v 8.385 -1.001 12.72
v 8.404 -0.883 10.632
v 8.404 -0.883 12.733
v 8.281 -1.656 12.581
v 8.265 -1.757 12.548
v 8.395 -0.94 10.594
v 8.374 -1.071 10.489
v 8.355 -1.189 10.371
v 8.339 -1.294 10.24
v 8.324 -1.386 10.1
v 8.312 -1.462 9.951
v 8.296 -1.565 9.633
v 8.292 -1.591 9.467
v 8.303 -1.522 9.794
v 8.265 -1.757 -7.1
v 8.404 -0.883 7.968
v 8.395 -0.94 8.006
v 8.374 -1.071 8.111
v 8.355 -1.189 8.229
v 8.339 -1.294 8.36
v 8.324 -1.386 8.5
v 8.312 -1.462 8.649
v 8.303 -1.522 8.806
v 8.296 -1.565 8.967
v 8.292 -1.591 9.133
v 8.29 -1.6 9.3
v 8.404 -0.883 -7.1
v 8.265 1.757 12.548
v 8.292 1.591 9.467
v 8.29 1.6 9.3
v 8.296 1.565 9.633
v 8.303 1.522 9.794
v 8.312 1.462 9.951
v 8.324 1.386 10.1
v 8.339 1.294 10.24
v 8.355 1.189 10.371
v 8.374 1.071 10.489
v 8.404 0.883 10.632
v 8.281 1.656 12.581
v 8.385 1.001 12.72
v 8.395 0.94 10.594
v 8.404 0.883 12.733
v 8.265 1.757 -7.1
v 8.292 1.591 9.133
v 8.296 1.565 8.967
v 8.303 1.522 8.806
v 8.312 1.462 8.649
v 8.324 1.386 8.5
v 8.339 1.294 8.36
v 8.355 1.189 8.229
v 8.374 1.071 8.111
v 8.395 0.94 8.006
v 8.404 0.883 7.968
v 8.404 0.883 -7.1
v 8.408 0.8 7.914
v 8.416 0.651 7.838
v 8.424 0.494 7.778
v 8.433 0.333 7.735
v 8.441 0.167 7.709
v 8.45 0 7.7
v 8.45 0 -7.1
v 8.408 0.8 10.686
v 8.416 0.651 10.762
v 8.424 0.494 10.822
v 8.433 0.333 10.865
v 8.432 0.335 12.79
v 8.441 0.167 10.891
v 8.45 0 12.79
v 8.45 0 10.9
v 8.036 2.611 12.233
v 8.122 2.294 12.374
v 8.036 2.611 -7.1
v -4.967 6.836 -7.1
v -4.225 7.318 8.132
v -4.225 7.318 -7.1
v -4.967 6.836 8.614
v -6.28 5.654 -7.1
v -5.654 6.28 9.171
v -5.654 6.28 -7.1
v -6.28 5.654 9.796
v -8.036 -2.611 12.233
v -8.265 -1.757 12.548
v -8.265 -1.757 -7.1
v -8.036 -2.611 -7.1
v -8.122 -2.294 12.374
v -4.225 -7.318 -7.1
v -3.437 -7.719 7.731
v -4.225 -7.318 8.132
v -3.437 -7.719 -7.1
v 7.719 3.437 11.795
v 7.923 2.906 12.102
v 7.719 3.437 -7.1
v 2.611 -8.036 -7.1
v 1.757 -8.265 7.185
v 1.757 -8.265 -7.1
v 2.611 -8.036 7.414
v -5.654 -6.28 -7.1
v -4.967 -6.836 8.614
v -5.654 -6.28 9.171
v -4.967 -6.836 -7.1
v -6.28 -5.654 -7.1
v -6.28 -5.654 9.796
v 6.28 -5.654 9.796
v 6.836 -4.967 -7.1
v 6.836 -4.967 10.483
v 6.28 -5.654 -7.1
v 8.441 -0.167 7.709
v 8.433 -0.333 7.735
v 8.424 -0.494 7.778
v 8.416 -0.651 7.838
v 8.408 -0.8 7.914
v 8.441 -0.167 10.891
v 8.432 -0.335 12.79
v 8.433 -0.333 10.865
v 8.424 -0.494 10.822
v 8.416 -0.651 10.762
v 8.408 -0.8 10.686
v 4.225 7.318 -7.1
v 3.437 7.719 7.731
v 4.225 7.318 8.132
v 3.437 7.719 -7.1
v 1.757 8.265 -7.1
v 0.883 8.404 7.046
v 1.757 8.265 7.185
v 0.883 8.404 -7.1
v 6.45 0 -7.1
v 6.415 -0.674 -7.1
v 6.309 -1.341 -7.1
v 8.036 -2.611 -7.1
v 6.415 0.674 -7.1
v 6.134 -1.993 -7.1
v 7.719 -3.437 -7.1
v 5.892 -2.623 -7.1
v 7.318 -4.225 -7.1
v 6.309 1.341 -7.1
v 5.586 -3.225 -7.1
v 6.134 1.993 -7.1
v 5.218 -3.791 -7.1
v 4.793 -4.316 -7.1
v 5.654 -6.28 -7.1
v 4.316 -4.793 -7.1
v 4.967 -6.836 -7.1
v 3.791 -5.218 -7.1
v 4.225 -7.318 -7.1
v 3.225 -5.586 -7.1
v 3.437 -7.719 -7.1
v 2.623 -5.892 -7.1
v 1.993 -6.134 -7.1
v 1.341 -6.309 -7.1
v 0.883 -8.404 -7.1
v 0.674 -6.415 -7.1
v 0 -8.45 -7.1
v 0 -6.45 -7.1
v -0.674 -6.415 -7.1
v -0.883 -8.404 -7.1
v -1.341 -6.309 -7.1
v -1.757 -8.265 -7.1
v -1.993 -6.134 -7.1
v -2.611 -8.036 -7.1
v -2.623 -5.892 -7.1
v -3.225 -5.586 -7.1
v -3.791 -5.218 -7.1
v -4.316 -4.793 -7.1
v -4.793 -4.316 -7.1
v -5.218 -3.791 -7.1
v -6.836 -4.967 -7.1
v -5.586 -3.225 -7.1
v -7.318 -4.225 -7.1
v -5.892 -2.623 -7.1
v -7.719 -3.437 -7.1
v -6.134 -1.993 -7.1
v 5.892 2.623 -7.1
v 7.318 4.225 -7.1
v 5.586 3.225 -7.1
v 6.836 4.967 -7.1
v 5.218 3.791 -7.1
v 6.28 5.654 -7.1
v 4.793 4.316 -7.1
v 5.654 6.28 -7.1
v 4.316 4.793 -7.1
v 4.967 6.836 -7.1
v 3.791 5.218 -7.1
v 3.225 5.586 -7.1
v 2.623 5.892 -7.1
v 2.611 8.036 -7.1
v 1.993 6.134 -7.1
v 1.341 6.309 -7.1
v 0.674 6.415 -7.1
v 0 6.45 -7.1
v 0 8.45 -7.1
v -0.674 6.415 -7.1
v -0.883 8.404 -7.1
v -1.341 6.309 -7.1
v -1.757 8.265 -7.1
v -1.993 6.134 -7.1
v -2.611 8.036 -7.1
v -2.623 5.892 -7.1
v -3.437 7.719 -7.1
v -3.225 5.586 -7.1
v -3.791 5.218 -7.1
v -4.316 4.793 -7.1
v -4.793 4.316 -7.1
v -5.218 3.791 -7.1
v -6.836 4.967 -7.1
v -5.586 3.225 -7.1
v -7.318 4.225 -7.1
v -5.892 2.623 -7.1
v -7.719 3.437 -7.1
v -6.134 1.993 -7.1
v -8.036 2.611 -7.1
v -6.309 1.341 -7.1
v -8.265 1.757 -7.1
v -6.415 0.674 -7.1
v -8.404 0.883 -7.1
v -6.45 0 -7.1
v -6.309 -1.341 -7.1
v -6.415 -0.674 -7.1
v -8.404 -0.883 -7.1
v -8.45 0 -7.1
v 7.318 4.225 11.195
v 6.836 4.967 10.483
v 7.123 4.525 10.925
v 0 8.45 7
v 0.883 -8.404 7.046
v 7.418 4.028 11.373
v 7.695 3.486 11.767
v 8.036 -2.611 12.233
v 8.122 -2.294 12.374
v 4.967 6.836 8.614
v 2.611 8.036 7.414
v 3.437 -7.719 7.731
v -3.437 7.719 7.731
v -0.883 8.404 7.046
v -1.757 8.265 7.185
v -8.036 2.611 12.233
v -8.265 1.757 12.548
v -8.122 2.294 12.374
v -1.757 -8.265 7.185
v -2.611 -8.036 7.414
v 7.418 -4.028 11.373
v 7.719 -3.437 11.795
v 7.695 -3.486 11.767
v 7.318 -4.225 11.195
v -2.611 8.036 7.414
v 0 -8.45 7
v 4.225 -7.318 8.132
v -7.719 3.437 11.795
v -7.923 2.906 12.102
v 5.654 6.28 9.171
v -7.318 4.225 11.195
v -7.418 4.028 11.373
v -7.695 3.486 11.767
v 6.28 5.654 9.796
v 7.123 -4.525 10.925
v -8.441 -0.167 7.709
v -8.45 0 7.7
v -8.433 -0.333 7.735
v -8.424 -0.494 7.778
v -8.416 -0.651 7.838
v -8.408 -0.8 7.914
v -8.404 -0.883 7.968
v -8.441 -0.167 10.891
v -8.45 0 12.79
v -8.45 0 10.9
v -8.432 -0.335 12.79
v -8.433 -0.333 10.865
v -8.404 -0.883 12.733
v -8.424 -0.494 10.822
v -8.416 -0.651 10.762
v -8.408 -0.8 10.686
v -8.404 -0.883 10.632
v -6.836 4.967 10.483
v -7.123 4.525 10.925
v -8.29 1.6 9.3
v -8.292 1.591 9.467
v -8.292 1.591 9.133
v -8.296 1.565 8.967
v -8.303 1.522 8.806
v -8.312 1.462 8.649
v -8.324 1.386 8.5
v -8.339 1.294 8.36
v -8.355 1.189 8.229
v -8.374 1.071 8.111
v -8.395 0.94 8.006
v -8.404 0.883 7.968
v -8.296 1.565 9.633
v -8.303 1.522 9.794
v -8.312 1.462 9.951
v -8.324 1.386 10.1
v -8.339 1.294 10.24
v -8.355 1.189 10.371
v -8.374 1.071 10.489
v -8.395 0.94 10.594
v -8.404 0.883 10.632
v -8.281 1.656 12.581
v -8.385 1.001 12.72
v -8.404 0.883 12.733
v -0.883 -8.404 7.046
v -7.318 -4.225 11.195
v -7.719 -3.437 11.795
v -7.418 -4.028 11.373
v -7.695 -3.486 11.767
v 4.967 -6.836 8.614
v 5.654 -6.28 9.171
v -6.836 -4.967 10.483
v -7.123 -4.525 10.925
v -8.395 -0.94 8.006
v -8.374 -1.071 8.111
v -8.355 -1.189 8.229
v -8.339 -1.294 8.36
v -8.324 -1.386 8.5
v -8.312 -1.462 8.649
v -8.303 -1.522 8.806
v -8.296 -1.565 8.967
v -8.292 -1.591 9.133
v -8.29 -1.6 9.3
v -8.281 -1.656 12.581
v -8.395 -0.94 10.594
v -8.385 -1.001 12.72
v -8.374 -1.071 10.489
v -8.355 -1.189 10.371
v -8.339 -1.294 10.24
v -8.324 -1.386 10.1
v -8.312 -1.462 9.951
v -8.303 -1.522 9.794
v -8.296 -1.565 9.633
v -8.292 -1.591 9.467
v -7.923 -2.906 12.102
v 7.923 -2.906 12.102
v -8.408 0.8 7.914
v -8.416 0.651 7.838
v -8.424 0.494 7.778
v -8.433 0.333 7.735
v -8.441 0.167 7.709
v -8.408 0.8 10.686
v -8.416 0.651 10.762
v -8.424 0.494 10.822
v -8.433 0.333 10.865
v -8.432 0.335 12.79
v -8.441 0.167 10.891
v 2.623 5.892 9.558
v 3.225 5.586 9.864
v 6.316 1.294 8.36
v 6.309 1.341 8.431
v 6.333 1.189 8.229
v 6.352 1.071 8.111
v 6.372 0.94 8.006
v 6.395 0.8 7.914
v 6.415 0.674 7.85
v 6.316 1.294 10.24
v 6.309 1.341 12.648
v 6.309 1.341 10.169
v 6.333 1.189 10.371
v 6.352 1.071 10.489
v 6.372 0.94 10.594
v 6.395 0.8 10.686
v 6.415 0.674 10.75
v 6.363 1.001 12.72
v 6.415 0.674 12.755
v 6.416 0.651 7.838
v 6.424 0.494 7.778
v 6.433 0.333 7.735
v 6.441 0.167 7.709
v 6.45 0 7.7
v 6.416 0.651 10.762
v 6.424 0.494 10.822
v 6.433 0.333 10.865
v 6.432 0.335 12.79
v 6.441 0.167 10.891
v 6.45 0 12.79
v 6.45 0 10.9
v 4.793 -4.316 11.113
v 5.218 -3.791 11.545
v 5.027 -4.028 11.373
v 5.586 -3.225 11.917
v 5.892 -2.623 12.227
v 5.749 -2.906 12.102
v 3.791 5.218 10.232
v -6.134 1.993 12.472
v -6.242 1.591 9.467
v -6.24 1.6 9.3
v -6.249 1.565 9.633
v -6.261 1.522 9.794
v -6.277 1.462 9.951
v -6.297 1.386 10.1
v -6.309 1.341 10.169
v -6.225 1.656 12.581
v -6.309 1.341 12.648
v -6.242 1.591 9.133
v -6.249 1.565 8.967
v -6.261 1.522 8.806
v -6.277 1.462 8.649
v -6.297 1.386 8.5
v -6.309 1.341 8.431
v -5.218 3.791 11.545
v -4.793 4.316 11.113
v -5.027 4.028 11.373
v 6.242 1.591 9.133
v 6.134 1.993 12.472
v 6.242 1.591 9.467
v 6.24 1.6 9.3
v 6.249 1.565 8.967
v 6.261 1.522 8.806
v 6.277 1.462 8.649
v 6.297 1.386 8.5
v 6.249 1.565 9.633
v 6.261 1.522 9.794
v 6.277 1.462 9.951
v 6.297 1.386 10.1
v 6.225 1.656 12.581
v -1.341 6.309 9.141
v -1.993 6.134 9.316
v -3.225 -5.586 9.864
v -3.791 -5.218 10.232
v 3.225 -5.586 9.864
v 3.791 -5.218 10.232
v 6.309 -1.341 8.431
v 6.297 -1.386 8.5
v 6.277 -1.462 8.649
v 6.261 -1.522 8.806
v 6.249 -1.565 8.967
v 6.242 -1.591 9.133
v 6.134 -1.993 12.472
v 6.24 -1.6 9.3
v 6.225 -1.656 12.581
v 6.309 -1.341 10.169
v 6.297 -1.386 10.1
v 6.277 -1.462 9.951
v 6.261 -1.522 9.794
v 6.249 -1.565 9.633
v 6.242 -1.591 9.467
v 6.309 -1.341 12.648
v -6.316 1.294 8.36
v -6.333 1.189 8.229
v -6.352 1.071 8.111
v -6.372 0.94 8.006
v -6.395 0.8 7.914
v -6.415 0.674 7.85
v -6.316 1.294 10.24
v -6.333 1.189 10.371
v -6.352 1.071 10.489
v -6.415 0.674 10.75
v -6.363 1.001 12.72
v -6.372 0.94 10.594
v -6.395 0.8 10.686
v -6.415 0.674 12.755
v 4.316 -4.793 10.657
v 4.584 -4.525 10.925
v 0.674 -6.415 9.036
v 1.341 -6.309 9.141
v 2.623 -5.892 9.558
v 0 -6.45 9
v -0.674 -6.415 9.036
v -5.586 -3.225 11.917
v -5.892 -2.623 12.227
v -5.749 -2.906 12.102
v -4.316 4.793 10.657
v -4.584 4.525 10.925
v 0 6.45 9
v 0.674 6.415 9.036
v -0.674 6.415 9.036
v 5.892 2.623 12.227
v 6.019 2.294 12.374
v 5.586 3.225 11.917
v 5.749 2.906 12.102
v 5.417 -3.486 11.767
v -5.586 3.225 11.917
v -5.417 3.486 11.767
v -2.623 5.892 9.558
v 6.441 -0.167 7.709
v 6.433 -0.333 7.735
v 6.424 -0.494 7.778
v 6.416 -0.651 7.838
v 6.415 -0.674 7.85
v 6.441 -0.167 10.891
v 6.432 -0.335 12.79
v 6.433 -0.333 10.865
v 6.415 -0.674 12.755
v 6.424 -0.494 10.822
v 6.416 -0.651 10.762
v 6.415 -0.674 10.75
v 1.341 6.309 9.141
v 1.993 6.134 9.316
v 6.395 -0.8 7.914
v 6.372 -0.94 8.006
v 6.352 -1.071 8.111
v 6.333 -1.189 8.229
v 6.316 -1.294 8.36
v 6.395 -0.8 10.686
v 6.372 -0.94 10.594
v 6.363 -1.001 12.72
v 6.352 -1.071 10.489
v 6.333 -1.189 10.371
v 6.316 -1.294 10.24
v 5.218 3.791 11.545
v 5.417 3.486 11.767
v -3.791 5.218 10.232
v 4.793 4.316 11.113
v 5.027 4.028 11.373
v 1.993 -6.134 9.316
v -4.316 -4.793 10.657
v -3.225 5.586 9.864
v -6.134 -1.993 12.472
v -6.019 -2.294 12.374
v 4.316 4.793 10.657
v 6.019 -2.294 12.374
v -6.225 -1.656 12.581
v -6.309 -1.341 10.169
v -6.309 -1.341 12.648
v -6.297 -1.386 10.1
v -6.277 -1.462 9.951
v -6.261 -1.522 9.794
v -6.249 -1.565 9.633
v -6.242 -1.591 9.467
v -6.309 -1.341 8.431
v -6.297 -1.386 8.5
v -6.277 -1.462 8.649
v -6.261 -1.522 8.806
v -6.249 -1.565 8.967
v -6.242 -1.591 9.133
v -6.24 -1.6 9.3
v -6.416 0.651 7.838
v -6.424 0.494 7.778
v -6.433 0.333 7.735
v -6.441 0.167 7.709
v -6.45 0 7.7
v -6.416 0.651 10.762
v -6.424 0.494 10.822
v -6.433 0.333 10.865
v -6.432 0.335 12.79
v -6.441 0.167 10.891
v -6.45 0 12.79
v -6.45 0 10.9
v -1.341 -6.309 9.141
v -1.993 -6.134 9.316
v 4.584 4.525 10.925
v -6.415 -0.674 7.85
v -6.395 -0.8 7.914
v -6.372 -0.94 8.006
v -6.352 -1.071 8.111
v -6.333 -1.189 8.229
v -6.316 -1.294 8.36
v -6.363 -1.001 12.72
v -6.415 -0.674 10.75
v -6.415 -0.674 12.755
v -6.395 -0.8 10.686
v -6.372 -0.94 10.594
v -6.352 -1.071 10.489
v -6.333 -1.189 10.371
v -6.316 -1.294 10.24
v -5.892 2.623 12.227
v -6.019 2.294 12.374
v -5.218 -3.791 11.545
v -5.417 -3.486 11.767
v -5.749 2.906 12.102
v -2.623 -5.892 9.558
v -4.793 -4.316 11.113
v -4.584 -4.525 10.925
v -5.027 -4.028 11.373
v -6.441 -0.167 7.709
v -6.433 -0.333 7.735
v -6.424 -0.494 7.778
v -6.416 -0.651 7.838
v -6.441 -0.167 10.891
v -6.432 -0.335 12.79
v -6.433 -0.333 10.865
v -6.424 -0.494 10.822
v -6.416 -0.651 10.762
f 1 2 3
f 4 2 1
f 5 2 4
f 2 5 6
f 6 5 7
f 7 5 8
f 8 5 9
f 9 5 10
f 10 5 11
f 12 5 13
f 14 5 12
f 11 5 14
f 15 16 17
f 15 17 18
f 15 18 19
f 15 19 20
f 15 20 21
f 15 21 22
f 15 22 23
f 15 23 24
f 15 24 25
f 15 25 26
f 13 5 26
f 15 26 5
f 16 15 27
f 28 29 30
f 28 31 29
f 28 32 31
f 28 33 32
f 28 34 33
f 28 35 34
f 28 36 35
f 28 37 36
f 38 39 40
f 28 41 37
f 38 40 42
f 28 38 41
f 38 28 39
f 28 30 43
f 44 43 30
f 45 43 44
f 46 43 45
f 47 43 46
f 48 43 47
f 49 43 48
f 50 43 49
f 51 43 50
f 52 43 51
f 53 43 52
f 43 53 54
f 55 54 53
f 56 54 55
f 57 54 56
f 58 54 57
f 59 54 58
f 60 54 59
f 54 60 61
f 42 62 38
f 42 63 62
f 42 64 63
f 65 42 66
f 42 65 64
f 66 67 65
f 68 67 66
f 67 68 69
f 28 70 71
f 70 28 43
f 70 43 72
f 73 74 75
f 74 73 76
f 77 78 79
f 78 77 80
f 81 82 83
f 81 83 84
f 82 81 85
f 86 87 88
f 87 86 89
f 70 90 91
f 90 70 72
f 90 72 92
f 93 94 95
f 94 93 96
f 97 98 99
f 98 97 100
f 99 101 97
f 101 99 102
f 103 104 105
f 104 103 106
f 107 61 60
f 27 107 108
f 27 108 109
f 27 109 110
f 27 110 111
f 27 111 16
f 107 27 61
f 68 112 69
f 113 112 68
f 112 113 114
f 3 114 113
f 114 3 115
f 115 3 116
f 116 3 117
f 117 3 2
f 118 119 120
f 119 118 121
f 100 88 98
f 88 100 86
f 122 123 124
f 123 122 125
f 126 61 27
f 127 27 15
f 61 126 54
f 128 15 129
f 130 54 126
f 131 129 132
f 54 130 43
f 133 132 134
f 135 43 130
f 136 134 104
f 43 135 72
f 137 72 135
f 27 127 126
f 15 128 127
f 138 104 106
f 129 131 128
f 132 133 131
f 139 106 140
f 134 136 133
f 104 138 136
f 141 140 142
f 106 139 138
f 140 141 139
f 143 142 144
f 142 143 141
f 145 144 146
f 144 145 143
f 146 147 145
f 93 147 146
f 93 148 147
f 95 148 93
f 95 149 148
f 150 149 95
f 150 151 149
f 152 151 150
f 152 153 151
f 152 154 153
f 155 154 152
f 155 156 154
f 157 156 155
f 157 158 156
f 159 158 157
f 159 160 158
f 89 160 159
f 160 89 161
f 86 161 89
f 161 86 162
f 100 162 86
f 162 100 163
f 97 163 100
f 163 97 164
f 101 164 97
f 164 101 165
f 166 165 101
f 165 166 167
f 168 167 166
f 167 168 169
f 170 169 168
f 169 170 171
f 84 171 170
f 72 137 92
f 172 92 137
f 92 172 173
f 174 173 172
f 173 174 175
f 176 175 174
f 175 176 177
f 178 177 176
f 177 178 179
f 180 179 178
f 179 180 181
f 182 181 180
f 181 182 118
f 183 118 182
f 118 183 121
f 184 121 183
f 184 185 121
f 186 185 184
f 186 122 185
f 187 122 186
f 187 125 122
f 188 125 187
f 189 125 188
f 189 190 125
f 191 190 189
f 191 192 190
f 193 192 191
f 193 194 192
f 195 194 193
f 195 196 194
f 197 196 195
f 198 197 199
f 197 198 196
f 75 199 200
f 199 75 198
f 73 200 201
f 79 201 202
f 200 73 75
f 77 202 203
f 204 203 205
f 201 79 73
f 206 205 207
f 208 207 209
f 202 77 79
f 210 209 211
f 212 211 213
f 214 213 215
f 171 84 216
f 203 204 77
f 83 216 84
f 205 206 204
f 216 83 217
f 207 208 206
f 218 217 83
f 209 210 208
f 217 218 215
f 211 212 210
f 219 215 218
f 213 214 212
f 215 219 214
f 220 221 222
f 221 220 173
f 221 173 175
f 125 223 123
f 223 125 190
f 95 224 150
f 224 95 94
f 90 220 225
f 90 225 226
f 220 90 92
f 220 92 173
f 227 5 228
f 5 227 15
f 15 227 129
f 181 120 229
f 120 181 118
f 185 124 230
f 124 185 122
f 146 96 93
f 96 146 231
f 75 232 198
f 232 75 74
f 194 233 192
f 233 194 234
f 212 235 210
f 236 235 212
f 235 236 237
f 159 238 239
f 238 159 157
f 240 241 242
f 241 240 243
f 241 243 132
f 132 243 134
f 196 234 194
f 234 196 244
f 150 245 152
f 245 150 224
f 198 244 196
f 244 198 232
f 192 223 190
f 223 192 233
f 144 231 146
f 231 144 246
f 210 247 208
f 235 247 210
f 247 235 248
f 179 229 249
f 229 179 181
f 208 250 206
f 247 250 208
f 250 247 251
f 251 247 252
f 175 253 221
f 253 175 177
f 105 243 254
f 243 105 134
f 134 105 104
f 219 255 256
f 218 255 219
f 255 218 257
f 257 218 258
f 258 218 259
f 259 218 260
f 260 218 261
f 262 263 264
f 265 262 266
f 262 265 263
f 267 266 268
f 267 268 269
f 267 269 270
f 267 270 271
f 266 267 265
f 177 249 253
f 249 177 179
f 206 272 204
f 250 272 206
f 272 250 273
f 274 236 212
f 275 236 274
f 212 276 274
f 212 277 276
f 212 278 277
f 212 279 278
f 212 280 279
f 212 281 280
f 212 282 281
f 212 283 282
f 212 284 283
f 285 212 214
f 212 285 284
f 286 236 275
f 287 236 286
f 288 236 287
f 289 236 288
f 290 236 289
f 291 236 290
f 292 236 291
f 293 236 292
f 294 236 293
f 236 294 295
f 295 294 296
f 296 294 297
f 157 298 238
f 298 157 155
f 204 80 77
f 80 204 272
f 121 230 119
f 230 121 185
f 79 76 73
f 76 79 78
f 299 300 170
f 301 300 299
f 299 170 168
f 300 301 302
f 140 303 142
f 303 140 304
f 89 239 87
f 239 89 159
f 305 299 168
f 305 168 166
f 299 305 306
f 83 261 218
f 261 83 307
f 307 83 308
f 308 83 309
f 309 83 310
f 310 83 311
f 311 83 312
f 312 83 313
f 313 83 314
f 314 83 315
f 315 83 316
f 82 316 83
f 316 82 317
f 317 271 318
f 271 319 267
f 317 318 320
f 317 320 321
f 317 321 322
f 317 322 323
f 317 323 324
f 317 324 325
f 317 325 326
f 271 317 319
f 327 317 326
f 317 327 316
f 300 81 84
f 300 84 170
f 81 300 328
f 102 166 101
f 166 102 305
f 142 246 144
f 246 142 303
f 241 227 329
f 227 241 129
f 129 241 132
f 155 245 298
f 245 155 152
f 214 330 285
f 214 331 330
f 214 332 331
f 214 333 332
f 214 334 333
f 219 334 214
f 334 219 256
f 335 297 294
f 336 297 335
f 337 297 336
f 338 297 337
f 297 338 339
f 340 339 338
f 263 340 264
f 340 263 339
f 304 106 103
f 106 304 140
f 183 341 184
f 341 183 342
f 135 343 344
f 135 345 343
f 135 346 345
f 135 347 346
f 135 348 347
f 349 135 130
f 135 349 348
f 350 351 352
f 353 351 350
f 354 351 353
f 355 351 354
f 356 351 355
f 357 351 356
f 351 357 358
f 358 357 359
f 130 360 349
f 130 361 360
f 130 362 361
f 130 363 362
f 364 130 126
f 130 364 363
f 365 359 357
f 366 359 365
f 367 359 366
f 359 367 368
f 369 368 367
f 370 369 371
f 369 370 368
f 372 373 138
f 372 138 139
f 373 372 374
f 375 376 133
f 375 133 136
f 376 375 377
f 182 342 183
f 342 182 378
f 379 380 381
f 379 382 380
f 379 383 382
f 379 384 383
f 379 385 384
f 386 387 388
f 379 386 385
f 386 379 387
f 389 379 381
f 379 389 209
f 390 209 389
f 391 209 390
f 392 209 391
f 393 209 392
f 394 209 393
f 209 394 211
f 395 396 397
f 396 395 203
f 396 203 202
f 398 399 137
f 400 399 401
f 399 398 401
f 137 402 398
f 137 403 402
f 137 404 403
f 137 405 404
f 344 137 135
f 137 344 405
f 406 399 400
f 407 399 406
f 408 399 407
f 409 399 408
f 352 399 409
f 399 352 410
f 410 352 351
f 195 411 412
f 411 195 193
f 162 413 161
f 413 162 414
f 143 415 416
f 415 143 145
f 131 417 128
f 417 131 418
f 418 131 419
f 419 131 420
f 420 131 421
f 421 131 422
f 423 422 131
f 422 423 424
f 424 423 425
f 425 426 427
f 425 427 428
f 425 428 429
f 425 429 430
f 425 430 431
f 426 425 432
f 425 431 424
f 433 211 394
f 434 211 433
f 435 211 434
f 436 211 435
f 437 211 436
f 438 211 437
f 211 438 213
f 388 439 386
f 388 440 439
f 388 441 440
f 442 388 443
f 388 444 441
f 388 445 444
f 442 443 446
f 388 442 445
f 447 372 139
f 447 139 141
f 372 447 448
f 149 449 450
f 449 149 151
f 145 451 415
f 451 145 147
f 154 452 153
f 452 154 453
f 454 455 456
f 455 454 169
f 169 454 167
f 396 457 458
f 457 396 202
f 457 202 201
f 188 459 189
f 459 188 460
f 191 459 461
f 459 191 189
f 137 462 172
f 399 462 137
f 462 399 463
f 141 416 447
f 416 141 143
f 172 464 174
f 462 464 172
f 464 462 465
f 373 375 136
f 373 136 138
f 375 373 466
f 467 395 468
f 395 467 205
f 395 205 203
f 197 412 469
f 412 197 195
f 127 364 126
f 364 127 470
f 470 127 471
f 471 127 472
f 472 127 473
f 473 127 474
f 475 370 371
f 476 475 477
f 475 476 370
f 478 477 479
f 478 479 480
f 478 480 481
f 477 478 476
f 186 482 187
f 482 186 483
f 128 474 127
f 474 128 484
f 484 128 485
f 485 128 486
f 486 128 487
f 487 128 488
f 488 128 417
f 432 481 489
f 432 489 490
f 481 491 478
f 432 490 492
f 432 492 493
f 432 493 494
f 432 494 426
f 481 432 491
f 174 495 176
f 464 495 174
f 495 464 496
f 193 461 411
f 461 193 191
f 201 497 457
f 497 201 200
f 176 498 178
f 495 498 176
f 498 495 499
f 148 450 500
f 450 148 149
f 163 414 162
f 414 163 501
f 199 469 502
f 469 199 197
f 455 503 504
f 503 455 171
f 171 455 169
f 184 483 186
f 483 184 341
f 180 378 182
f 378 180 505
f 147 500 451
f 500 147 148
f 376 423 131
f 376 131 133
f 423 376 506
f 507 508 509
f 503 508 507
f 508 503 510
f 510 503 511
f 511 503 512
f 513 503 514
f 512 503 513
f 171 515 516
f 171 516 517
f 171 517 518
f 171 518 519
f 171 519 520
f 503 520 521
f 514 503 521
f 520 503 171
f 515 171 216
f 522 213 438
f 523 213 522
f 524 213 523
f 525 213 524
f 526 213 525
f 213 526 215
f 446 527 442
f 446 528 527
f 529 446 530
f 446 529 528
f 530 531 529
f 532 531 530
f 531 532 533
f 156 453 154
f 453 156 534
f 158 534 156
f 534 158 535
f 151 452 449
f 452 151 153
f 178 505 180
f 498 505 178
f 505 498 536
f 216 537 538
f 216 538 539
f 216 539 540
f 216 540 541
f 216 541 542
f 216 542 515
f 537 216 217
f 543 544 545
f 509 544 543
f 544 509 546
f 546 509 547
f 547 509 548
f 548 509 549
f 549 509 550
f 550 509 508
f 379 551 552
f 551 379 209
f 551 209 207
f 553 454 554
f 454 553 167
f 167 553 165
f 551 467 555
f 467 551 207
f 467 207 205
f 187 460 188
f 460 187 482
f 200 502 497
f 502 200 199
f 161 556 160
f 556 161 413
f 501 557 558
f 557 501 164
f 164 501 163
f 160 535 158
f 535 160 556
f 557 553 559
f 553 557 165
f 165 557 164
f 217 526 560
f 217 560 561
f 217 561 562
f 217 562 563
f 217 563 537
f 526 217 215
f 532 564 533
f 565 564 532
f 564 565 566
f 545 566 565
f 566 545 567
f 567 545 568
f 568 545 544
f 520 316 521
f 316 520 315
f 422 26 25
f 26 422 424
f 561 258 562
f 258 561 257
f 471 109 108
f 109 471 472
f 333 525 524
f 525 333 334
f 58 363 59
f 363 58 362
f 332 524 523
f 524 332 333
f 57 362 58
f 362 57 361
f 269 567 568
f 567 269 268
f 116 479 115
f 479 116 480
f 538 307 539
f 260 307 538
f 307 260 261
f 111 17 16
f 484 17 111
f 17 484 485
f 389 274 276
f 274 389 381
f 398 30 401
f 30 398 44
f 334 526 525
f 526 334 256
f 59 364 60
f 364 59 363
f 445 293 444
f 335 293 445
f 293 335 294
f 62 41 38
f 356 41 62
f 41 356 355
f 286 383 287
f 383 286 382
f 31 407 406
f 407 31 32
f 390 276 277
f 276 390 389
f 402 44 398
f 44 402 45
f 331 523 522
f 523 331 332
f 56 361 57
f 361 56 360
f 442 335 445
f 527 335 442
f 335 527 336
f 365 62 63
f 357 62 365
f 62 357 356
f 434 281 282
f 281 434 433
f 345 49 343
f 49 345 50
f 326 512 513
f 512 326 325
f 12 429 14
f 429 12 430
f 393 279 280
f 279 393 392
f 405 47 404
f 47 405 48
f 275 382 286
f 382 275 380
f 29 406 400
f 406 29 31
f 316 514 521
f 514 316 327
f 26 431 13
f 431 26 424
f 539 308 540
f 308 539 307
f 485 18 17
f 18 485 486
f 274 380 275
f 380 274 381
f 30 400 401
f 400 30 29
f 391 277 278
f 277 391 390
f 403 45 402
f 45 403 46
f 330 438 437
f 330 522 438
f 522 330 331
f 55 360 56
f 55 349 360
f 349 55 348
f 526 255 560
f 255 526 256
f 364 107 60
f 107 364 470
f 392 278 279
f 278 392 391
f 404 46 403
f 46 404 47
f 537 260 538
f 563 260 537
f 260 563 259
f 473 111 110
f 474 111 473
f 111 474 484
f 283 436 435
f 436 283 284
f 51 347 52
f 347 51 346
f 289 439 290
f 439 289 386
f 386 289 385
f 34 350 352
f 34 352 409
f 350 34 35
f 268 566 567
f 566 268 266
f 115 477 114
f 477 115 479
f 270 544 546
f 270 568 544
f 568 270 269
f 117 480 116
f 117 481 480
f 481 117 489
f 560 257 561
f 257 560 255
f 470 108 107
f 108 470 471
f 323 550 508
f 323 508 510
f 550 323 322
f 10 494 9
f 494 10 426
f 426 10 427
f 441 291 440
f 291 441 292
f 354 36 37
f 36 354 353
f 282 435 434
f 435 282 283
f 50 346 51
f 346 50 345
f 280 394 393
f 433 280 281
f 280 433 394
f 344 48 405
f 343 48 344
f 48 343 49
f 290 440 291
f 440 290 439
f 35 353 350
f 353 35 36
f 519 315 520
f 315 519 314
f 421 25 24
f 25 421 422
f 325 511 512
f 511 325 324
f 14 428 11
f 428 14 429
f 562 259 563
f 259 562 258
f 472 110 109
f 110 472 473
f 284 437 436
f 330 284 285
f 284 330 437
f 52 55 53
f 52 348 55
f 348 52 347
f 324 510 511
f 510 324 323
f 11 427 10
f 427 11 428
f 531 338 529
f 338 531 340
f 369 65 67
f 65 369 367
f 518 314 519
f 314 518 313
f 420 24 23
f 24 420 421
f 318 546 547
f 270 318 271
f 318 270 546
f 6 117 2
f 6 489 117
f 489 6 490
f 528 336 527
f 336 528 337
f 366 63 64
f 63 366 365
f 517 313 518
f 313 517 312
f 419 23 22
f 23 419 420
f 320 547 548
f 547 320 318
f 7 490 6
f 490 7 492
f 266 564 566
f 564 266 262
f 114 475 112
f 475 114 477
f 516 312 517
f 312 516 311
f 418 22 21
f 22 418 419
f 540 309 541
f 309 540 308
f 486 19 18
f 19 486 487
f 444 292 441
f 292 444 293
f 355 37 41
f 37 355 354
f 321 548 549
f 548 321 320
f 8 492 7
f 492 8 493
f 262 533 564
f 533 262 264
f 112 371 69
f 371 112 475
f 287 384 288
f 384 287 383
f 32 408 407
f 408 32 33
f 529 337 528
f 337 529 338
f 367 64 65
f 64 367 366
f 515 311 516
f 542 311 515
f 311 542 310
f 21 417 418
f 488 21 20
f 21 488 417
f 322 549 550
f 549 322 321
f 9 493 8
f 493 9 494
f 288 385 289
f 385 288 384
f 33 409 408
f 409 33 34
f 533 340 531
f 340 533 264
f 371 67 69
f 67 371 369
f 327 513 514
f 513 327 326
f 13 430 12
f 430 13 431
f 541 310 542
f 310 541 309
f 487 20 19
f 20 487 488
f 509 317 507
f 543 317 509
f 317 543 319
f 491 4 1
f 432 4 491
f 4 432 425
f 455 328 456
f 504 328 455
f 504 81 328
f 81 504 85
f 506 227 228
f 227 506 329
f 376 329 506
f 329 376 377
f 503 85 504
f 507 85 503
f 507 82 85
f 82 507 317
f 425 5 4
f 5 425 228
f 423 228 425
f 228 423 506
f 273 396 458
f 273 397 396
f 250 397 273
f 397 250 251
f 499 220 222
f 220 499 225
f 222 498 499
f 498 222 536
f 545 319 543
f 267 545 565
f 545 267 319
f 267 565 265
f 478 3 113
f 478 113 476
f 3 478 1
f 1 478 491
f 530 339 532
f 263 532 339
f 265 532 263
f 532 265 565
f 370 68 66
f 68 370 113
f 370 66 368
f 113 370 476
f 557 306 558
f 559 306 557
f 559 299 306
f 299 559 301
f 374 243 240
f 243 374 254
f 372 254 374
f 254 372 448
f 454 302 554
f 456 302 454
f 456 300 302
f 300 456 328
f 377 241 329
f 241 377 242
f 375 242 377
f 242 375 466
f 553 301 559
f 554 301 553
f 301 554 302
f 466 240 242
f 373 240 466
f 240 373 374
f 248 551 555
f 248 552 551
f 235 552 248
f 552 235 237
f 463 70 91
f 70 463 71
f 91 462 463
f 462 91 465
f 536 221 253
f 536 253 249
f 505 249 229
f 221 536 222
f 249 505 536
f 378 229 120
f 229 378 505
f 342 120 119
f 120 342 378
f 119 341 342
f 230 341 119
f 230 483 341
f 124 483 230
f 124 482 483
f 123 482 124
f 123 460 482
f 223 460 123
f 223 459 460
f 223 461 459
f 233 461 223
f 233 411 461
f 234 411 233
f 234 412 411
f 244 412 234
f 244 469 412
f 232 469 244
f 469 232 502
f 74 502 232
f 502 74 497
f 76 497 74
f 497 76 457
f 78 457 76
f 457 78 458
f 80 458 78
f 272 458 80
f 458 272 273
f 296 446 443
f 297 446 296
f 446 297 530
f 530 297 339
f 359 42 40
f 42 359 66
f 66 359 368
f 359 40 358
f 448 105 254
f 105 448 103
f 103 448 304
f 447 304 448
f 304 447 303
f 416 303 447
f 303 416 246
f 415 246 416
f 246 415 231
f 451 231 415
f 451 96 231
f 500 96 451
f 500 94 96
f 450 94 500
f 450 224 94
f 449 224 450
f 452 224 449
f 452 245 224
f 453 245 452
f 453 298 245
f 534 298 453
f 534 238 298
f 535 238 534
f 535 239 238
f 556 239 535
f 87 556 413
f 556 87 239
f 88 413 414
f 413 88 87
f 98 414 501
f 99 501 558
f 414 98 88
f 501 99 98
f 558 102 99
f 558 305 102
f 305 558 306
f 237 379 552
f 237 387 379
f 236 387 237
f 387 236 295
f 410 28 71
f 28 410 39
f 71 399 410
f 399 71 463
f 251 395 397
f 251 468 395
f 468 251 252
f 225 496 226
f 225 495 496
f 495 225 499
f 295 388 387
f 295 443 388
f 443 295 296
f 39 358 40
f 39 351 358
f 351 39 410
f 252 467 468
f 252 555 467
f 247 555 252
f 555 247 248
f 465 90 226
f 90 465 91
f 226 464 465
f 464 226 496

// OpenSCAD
/* Copyright (C) Peter Ivanov <ivanovp@gmail.com>, 2015 */
/* License: Creative Commons - Attribution - Non-commercial (CC BY-NC) /

// 16005 bearing, h = 8 mm, d = 25 mm, D = 47 mm
// 16003 bearing, h = 8 mm, d = 17 mm, D = 35 mm
/* [Global] */
outer_diameter = 16.9;
wall_thickness = 2;
inner_diameter = outer_diameter - wall_thickness * 2;
base_width = outer_diameter + 5;
height = 20;
drill_diameter = 3.2;
epsilon = 0.1;

$fn = 60;

intersection()
{
    difference()
    {
        translate([0, 0, inner_diameter - height]) cylinder(d=outer_diameter, h=height);
        cylinder(d=inner_diameter, h=height * 2, center=true);
        translate([0, 0, inner_diameter - drill_diameter / 2 - wall_thickness]) rotate([0, 90, 0]) cylinder(d=drill_diameter, h=outer_diameter + epsilon, center=true);
    }
    translate([0, 0, -outer_diameter / 2]) rotate([45, 0, 0]) translate([0, -outer_diameter, outer_diameter]) rotate([0, 90, 0]) rounded_cube(outer_diameter * 2, outer_diameter * 2, outer_diameter, drill_diameter * 2);
}

module rounded_cube(w, l, h, r)
{
    hull()
    {
     translate([0 + r, 0 + r, 0]) cylinder(r=r, h=h, center=true);
     translate([w - r, 0 + r, 0]) cylinder(r=r, h=h, center=true);
     translate([w - r, l - r, 0]) cylinder(r=r, h=h, center=true);
     translate([0 + r, l - r, 0]) cylinder(r=r, h=h, center=true);
    }
}

module hexagon(width, height, baseAngle) 
{
  bwidth = width / 1.75;
  for (angle = [baseAngle, baseAngle + 60, baseAngle + 120]) 
  {
      rotate([0, 0, angle]) cube([bwidth, width, height], true);
  }
}
